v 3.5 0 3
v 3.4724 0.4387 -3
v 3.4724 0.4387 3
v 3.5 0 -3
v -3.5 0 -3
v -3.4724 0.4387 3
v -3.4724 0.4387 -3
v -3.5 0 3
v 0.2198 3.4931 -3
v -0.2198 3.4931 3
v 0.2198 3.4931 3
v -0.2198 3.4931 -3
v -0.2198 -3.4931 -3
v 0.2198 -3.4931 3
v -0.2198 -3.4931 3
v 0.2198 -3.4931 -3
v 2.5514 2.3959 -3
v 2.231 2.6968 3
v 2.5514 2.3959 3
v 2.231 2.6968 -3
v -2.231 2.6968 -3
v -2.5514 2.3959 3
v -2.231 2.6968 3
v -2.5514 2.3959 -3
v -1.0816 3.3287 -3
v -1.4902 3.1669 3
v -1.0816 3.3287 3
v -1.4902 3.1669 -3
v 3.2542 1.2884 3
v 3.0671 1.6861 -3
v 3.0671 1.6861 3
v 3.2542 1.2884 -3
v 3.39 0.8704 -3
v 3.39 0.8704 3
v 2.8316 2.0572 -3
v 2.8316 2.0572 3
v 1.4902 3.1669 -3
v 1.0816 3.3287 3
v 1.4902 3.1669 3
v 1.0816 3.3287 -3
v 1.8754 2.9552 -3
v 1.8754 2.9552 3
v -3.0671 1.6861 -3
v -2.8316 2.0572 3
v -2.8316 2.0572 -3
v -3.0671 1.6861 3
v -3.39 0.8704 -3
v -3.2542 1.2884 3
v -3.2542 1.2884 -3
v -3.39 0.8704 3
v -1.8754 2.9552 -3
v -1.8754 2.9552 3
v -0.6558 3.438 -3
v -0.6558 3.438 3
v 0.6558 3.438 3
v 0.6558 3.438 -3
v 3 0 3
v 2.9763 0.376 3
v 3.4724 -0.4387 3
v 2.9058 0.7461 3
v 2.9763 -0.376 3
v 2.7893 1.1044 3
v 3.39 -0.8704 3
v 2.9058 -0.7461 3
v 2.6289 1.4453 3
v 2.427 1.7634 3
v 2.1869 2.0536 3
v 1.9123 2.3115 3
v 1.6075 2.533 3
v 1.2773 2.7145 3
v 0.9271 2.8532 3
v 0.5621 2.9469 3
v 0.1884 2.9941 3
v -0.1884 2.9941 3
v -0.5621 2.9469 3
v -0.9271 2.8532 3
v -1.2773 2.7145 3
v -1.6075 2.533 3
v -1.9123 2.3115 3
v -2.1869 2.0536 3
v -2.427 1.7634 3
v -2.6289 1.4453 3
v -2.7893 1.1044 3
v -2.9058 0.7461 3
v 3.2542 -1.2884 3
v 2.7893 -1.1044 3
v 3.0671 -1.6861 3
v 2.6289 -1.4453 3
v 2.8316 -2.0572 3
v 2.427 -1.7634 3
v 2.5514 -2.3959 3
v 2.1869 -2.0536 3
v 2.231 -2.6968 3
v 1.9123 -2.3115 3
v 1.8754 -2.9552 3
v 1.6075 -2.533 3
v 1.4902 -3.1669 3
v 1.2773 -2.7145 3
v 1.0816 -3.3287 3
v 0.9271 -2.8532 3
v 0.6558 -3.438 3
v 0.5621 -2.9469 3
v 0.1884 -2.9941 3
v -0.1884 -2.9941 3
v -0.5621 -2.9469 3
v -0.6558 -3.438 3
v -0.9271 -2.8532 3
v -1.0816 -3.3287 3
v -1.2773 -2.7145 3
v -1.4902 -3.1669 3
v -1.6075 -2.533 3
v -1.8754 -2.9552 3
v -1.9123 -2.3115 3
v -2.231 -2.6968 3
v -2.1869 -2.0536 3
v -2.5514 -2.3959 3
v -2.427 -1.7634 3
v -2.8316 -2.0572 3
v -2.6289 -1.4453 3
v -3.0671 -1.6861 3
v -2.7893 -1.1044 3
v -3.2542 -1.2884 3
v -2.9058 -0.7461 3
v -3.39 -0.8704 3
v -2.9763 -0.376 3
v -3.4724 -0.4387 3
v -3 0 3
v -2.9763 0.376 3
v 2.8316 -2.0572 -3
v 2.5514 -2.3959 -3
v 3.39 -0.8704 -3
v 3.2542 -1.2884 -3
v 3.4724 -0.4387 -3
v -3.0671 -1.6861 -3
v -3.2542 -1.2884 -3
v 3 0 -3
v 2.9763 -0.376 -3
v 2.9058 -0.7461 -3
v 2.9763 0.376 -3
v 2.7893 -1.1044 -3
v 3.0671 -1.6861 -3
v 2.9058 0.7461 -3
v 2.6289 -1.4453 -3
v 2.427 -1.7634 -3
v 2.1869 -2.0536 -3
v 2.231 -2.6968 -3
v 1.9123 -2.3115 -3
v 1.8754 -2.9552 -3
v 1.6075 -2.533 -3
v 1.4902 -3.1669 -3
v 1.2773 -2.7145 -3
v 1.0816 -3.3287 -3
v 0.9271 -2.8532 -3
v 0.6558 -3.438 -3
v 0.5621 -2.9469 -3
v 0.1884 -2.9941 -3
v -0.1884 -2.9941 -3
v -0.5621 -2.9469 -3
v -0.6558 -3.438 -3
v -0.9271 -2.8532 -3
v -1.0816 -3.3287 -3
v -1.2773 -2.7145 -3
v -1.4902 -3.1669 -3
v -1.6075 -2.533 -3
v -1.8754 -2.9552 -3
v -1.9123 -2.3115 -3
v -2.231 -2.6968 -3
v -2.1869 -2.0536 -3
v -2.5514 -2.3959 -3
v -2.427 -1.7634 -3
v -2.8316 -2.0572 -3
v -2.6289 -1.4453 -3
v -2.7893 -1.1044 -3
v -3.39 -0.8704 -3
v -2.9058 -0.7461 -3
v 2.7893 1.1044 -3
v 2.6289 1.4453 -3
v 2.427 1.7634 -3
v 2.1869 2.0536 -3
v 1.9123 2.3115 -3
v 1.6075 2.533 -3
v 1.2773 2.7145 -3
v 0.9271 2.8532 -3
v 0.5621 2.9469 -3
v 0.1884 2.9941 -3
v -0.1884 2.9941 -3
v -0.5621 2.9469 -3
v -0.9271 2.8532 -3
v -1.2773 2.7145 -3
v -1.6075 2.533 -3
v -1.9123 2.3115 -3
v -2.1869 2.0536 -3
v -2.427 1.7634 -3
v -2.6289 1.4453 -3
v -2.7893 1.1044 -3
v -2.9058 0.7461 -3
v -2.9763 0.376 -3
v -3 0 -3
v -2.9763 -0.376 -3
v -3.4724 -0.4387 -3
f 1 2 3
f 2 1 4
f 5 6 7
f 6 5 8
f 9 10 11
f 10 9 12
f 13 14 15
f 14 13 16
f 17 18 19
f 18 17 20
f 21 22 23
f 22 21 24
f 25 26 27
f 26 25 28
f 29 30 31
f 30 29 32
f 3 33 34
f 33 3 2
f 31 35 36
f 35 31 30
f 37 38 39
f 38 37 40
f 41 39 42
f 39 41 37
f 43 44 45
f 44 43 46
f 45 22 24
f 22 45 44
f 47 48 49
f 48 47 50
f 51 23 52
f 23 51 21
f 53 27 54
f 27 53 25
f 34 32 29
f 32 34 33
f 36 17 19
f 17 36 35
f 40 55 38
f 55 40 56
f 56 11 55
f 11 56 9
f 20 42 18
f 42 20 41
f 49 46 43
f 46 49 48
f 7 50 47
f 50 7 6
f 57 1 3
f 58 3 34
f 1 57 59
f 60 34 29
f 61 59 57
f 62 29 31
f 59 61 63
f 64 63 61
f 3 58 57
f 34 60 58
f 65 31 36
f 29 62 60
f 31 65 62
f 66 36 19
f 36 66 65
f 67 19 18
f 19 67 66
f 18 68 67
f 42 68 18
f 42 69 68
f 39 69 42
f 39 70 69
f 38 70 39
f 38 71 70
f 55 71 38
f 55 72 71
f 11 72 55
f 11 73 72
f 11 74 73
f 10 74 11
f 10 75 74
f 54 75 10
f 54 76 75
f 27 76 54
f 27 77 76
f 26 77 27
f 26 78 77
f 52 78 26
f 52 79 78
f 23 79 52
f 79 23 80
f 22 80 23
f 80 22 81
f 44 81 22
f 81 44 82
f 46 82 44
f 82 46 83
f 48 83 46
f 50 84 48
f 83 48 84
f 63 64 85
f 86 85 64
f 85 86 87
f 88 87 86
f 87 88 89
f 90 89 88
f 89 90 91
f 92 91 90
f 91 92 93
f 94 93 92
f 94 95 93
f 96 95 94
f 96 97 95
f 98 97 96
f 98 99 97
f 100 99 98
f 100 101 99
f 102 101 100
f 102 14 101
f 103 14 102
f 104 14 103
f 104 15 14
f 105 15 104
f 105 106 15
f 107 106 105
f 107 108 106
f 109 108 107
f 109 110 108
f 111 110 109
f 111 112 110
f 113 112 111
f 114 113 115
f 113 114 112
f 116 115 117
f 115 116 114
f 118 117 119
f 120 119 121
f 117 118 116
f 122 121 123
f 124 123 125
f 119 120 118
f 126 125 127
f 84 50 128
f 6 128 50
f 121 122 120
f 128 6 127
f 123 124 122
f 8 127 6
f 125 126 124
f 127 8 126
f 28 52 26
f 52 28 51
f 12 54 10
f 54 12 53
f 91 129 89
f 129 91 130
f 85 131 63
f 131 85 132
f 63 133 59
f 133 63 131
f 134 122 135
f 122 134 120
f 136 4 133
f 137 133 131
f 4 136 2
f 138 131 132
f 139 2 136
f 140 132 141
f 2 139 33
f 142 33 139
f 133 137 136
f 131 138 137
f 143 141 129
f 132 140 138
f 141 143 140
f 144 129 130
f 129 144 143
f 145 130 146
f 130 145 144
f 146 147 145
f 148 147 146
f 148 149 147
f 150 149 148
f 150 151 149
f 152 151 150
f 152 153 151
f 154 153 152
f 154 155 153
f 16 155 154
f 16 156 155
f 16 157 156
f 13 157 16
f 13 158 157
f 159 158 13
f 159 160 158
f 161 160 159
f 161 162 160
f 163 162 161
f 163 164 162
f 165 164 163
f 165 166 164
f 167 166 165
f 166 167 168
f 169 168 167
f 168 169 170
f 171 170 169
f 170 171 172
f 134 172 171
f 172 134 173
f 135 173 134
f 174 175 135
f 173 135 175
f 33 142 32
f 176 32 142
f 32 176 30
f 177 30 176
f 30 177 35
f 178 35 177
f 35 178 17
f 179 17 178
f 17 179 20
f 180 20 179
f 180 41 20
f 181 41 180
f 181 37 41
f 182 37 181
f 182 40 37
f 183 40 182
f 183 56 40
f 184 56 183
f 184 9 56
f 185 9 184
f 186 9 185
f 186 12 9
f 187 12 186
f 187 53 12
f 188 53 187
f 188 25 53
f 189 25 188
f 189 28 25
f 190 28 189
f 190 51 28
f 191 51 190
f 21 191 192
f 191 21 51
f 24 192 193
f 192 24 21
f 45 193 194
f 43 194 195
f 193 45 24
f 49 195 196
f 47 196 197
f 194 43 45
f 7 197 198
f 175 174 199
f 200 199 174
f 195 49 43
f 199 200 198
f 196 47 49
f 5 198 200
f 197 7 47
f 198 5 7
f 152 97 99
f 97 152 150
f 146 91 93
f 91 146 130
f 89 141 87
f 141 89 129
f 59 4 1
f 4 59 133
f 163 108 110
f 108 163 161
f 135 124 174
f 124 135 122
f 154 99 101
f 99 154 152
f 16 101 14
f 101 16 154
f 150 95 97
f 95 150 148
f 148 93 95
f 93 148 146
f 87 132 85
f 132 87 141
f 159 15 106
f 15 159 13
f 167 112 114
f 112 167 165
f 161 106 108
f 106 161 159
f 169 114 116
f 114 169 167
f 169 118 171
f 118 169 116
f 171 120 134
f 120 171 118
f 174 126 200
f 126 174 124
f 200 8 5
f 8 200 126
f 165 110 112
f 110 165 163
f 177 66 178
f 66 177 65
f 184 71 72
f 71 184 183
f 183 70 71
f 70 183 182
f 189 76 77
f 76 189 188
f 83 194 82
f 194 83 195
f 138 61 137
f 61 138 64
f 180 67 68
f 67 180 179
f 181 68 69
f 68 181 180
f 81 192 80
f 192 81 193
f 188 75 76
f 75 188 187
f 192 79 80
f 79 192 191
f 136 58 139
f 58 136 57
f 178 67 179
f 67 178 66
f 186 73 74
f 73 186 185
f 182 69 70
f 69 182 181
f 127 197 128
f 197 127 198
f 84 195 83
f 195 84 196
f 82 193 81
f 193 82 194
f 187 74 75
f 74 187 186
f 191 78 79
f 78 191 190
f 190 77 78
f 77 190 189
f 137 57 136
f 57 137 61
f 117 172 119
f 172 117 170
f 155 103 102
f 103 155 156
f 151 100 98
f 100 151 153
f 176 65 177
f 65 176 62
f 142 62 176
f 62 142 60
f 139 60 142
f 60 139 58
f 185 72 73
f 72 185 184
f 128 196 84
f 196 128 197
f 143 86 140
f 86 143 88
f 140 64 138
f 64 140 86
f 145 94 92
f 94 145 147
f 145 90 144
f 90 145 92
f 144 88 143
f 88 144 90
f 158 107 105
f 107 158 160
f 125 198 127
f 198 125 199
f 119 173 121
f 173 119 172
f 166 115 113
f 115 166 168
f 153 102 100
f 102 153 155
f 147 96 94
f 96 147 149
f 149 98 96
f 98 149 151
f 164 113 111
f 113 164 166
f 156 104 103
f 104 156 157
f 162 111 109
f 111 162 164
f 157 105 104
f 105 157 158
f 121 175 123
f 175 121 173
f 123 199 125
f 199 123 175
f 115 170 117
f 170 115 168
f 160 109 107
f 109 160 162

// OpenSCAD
$fn = 50;


difference() {
	union() {
		translate(v = [0, 0, -3.0000000000]) {
			cylinder(h = 6, r = 3.5000000000);
		}
	}
	union() {
		translate(v = [0, 0, -100.0000000000]) {
			cylinder(h = 200, r = 3);
		}
	}
}
